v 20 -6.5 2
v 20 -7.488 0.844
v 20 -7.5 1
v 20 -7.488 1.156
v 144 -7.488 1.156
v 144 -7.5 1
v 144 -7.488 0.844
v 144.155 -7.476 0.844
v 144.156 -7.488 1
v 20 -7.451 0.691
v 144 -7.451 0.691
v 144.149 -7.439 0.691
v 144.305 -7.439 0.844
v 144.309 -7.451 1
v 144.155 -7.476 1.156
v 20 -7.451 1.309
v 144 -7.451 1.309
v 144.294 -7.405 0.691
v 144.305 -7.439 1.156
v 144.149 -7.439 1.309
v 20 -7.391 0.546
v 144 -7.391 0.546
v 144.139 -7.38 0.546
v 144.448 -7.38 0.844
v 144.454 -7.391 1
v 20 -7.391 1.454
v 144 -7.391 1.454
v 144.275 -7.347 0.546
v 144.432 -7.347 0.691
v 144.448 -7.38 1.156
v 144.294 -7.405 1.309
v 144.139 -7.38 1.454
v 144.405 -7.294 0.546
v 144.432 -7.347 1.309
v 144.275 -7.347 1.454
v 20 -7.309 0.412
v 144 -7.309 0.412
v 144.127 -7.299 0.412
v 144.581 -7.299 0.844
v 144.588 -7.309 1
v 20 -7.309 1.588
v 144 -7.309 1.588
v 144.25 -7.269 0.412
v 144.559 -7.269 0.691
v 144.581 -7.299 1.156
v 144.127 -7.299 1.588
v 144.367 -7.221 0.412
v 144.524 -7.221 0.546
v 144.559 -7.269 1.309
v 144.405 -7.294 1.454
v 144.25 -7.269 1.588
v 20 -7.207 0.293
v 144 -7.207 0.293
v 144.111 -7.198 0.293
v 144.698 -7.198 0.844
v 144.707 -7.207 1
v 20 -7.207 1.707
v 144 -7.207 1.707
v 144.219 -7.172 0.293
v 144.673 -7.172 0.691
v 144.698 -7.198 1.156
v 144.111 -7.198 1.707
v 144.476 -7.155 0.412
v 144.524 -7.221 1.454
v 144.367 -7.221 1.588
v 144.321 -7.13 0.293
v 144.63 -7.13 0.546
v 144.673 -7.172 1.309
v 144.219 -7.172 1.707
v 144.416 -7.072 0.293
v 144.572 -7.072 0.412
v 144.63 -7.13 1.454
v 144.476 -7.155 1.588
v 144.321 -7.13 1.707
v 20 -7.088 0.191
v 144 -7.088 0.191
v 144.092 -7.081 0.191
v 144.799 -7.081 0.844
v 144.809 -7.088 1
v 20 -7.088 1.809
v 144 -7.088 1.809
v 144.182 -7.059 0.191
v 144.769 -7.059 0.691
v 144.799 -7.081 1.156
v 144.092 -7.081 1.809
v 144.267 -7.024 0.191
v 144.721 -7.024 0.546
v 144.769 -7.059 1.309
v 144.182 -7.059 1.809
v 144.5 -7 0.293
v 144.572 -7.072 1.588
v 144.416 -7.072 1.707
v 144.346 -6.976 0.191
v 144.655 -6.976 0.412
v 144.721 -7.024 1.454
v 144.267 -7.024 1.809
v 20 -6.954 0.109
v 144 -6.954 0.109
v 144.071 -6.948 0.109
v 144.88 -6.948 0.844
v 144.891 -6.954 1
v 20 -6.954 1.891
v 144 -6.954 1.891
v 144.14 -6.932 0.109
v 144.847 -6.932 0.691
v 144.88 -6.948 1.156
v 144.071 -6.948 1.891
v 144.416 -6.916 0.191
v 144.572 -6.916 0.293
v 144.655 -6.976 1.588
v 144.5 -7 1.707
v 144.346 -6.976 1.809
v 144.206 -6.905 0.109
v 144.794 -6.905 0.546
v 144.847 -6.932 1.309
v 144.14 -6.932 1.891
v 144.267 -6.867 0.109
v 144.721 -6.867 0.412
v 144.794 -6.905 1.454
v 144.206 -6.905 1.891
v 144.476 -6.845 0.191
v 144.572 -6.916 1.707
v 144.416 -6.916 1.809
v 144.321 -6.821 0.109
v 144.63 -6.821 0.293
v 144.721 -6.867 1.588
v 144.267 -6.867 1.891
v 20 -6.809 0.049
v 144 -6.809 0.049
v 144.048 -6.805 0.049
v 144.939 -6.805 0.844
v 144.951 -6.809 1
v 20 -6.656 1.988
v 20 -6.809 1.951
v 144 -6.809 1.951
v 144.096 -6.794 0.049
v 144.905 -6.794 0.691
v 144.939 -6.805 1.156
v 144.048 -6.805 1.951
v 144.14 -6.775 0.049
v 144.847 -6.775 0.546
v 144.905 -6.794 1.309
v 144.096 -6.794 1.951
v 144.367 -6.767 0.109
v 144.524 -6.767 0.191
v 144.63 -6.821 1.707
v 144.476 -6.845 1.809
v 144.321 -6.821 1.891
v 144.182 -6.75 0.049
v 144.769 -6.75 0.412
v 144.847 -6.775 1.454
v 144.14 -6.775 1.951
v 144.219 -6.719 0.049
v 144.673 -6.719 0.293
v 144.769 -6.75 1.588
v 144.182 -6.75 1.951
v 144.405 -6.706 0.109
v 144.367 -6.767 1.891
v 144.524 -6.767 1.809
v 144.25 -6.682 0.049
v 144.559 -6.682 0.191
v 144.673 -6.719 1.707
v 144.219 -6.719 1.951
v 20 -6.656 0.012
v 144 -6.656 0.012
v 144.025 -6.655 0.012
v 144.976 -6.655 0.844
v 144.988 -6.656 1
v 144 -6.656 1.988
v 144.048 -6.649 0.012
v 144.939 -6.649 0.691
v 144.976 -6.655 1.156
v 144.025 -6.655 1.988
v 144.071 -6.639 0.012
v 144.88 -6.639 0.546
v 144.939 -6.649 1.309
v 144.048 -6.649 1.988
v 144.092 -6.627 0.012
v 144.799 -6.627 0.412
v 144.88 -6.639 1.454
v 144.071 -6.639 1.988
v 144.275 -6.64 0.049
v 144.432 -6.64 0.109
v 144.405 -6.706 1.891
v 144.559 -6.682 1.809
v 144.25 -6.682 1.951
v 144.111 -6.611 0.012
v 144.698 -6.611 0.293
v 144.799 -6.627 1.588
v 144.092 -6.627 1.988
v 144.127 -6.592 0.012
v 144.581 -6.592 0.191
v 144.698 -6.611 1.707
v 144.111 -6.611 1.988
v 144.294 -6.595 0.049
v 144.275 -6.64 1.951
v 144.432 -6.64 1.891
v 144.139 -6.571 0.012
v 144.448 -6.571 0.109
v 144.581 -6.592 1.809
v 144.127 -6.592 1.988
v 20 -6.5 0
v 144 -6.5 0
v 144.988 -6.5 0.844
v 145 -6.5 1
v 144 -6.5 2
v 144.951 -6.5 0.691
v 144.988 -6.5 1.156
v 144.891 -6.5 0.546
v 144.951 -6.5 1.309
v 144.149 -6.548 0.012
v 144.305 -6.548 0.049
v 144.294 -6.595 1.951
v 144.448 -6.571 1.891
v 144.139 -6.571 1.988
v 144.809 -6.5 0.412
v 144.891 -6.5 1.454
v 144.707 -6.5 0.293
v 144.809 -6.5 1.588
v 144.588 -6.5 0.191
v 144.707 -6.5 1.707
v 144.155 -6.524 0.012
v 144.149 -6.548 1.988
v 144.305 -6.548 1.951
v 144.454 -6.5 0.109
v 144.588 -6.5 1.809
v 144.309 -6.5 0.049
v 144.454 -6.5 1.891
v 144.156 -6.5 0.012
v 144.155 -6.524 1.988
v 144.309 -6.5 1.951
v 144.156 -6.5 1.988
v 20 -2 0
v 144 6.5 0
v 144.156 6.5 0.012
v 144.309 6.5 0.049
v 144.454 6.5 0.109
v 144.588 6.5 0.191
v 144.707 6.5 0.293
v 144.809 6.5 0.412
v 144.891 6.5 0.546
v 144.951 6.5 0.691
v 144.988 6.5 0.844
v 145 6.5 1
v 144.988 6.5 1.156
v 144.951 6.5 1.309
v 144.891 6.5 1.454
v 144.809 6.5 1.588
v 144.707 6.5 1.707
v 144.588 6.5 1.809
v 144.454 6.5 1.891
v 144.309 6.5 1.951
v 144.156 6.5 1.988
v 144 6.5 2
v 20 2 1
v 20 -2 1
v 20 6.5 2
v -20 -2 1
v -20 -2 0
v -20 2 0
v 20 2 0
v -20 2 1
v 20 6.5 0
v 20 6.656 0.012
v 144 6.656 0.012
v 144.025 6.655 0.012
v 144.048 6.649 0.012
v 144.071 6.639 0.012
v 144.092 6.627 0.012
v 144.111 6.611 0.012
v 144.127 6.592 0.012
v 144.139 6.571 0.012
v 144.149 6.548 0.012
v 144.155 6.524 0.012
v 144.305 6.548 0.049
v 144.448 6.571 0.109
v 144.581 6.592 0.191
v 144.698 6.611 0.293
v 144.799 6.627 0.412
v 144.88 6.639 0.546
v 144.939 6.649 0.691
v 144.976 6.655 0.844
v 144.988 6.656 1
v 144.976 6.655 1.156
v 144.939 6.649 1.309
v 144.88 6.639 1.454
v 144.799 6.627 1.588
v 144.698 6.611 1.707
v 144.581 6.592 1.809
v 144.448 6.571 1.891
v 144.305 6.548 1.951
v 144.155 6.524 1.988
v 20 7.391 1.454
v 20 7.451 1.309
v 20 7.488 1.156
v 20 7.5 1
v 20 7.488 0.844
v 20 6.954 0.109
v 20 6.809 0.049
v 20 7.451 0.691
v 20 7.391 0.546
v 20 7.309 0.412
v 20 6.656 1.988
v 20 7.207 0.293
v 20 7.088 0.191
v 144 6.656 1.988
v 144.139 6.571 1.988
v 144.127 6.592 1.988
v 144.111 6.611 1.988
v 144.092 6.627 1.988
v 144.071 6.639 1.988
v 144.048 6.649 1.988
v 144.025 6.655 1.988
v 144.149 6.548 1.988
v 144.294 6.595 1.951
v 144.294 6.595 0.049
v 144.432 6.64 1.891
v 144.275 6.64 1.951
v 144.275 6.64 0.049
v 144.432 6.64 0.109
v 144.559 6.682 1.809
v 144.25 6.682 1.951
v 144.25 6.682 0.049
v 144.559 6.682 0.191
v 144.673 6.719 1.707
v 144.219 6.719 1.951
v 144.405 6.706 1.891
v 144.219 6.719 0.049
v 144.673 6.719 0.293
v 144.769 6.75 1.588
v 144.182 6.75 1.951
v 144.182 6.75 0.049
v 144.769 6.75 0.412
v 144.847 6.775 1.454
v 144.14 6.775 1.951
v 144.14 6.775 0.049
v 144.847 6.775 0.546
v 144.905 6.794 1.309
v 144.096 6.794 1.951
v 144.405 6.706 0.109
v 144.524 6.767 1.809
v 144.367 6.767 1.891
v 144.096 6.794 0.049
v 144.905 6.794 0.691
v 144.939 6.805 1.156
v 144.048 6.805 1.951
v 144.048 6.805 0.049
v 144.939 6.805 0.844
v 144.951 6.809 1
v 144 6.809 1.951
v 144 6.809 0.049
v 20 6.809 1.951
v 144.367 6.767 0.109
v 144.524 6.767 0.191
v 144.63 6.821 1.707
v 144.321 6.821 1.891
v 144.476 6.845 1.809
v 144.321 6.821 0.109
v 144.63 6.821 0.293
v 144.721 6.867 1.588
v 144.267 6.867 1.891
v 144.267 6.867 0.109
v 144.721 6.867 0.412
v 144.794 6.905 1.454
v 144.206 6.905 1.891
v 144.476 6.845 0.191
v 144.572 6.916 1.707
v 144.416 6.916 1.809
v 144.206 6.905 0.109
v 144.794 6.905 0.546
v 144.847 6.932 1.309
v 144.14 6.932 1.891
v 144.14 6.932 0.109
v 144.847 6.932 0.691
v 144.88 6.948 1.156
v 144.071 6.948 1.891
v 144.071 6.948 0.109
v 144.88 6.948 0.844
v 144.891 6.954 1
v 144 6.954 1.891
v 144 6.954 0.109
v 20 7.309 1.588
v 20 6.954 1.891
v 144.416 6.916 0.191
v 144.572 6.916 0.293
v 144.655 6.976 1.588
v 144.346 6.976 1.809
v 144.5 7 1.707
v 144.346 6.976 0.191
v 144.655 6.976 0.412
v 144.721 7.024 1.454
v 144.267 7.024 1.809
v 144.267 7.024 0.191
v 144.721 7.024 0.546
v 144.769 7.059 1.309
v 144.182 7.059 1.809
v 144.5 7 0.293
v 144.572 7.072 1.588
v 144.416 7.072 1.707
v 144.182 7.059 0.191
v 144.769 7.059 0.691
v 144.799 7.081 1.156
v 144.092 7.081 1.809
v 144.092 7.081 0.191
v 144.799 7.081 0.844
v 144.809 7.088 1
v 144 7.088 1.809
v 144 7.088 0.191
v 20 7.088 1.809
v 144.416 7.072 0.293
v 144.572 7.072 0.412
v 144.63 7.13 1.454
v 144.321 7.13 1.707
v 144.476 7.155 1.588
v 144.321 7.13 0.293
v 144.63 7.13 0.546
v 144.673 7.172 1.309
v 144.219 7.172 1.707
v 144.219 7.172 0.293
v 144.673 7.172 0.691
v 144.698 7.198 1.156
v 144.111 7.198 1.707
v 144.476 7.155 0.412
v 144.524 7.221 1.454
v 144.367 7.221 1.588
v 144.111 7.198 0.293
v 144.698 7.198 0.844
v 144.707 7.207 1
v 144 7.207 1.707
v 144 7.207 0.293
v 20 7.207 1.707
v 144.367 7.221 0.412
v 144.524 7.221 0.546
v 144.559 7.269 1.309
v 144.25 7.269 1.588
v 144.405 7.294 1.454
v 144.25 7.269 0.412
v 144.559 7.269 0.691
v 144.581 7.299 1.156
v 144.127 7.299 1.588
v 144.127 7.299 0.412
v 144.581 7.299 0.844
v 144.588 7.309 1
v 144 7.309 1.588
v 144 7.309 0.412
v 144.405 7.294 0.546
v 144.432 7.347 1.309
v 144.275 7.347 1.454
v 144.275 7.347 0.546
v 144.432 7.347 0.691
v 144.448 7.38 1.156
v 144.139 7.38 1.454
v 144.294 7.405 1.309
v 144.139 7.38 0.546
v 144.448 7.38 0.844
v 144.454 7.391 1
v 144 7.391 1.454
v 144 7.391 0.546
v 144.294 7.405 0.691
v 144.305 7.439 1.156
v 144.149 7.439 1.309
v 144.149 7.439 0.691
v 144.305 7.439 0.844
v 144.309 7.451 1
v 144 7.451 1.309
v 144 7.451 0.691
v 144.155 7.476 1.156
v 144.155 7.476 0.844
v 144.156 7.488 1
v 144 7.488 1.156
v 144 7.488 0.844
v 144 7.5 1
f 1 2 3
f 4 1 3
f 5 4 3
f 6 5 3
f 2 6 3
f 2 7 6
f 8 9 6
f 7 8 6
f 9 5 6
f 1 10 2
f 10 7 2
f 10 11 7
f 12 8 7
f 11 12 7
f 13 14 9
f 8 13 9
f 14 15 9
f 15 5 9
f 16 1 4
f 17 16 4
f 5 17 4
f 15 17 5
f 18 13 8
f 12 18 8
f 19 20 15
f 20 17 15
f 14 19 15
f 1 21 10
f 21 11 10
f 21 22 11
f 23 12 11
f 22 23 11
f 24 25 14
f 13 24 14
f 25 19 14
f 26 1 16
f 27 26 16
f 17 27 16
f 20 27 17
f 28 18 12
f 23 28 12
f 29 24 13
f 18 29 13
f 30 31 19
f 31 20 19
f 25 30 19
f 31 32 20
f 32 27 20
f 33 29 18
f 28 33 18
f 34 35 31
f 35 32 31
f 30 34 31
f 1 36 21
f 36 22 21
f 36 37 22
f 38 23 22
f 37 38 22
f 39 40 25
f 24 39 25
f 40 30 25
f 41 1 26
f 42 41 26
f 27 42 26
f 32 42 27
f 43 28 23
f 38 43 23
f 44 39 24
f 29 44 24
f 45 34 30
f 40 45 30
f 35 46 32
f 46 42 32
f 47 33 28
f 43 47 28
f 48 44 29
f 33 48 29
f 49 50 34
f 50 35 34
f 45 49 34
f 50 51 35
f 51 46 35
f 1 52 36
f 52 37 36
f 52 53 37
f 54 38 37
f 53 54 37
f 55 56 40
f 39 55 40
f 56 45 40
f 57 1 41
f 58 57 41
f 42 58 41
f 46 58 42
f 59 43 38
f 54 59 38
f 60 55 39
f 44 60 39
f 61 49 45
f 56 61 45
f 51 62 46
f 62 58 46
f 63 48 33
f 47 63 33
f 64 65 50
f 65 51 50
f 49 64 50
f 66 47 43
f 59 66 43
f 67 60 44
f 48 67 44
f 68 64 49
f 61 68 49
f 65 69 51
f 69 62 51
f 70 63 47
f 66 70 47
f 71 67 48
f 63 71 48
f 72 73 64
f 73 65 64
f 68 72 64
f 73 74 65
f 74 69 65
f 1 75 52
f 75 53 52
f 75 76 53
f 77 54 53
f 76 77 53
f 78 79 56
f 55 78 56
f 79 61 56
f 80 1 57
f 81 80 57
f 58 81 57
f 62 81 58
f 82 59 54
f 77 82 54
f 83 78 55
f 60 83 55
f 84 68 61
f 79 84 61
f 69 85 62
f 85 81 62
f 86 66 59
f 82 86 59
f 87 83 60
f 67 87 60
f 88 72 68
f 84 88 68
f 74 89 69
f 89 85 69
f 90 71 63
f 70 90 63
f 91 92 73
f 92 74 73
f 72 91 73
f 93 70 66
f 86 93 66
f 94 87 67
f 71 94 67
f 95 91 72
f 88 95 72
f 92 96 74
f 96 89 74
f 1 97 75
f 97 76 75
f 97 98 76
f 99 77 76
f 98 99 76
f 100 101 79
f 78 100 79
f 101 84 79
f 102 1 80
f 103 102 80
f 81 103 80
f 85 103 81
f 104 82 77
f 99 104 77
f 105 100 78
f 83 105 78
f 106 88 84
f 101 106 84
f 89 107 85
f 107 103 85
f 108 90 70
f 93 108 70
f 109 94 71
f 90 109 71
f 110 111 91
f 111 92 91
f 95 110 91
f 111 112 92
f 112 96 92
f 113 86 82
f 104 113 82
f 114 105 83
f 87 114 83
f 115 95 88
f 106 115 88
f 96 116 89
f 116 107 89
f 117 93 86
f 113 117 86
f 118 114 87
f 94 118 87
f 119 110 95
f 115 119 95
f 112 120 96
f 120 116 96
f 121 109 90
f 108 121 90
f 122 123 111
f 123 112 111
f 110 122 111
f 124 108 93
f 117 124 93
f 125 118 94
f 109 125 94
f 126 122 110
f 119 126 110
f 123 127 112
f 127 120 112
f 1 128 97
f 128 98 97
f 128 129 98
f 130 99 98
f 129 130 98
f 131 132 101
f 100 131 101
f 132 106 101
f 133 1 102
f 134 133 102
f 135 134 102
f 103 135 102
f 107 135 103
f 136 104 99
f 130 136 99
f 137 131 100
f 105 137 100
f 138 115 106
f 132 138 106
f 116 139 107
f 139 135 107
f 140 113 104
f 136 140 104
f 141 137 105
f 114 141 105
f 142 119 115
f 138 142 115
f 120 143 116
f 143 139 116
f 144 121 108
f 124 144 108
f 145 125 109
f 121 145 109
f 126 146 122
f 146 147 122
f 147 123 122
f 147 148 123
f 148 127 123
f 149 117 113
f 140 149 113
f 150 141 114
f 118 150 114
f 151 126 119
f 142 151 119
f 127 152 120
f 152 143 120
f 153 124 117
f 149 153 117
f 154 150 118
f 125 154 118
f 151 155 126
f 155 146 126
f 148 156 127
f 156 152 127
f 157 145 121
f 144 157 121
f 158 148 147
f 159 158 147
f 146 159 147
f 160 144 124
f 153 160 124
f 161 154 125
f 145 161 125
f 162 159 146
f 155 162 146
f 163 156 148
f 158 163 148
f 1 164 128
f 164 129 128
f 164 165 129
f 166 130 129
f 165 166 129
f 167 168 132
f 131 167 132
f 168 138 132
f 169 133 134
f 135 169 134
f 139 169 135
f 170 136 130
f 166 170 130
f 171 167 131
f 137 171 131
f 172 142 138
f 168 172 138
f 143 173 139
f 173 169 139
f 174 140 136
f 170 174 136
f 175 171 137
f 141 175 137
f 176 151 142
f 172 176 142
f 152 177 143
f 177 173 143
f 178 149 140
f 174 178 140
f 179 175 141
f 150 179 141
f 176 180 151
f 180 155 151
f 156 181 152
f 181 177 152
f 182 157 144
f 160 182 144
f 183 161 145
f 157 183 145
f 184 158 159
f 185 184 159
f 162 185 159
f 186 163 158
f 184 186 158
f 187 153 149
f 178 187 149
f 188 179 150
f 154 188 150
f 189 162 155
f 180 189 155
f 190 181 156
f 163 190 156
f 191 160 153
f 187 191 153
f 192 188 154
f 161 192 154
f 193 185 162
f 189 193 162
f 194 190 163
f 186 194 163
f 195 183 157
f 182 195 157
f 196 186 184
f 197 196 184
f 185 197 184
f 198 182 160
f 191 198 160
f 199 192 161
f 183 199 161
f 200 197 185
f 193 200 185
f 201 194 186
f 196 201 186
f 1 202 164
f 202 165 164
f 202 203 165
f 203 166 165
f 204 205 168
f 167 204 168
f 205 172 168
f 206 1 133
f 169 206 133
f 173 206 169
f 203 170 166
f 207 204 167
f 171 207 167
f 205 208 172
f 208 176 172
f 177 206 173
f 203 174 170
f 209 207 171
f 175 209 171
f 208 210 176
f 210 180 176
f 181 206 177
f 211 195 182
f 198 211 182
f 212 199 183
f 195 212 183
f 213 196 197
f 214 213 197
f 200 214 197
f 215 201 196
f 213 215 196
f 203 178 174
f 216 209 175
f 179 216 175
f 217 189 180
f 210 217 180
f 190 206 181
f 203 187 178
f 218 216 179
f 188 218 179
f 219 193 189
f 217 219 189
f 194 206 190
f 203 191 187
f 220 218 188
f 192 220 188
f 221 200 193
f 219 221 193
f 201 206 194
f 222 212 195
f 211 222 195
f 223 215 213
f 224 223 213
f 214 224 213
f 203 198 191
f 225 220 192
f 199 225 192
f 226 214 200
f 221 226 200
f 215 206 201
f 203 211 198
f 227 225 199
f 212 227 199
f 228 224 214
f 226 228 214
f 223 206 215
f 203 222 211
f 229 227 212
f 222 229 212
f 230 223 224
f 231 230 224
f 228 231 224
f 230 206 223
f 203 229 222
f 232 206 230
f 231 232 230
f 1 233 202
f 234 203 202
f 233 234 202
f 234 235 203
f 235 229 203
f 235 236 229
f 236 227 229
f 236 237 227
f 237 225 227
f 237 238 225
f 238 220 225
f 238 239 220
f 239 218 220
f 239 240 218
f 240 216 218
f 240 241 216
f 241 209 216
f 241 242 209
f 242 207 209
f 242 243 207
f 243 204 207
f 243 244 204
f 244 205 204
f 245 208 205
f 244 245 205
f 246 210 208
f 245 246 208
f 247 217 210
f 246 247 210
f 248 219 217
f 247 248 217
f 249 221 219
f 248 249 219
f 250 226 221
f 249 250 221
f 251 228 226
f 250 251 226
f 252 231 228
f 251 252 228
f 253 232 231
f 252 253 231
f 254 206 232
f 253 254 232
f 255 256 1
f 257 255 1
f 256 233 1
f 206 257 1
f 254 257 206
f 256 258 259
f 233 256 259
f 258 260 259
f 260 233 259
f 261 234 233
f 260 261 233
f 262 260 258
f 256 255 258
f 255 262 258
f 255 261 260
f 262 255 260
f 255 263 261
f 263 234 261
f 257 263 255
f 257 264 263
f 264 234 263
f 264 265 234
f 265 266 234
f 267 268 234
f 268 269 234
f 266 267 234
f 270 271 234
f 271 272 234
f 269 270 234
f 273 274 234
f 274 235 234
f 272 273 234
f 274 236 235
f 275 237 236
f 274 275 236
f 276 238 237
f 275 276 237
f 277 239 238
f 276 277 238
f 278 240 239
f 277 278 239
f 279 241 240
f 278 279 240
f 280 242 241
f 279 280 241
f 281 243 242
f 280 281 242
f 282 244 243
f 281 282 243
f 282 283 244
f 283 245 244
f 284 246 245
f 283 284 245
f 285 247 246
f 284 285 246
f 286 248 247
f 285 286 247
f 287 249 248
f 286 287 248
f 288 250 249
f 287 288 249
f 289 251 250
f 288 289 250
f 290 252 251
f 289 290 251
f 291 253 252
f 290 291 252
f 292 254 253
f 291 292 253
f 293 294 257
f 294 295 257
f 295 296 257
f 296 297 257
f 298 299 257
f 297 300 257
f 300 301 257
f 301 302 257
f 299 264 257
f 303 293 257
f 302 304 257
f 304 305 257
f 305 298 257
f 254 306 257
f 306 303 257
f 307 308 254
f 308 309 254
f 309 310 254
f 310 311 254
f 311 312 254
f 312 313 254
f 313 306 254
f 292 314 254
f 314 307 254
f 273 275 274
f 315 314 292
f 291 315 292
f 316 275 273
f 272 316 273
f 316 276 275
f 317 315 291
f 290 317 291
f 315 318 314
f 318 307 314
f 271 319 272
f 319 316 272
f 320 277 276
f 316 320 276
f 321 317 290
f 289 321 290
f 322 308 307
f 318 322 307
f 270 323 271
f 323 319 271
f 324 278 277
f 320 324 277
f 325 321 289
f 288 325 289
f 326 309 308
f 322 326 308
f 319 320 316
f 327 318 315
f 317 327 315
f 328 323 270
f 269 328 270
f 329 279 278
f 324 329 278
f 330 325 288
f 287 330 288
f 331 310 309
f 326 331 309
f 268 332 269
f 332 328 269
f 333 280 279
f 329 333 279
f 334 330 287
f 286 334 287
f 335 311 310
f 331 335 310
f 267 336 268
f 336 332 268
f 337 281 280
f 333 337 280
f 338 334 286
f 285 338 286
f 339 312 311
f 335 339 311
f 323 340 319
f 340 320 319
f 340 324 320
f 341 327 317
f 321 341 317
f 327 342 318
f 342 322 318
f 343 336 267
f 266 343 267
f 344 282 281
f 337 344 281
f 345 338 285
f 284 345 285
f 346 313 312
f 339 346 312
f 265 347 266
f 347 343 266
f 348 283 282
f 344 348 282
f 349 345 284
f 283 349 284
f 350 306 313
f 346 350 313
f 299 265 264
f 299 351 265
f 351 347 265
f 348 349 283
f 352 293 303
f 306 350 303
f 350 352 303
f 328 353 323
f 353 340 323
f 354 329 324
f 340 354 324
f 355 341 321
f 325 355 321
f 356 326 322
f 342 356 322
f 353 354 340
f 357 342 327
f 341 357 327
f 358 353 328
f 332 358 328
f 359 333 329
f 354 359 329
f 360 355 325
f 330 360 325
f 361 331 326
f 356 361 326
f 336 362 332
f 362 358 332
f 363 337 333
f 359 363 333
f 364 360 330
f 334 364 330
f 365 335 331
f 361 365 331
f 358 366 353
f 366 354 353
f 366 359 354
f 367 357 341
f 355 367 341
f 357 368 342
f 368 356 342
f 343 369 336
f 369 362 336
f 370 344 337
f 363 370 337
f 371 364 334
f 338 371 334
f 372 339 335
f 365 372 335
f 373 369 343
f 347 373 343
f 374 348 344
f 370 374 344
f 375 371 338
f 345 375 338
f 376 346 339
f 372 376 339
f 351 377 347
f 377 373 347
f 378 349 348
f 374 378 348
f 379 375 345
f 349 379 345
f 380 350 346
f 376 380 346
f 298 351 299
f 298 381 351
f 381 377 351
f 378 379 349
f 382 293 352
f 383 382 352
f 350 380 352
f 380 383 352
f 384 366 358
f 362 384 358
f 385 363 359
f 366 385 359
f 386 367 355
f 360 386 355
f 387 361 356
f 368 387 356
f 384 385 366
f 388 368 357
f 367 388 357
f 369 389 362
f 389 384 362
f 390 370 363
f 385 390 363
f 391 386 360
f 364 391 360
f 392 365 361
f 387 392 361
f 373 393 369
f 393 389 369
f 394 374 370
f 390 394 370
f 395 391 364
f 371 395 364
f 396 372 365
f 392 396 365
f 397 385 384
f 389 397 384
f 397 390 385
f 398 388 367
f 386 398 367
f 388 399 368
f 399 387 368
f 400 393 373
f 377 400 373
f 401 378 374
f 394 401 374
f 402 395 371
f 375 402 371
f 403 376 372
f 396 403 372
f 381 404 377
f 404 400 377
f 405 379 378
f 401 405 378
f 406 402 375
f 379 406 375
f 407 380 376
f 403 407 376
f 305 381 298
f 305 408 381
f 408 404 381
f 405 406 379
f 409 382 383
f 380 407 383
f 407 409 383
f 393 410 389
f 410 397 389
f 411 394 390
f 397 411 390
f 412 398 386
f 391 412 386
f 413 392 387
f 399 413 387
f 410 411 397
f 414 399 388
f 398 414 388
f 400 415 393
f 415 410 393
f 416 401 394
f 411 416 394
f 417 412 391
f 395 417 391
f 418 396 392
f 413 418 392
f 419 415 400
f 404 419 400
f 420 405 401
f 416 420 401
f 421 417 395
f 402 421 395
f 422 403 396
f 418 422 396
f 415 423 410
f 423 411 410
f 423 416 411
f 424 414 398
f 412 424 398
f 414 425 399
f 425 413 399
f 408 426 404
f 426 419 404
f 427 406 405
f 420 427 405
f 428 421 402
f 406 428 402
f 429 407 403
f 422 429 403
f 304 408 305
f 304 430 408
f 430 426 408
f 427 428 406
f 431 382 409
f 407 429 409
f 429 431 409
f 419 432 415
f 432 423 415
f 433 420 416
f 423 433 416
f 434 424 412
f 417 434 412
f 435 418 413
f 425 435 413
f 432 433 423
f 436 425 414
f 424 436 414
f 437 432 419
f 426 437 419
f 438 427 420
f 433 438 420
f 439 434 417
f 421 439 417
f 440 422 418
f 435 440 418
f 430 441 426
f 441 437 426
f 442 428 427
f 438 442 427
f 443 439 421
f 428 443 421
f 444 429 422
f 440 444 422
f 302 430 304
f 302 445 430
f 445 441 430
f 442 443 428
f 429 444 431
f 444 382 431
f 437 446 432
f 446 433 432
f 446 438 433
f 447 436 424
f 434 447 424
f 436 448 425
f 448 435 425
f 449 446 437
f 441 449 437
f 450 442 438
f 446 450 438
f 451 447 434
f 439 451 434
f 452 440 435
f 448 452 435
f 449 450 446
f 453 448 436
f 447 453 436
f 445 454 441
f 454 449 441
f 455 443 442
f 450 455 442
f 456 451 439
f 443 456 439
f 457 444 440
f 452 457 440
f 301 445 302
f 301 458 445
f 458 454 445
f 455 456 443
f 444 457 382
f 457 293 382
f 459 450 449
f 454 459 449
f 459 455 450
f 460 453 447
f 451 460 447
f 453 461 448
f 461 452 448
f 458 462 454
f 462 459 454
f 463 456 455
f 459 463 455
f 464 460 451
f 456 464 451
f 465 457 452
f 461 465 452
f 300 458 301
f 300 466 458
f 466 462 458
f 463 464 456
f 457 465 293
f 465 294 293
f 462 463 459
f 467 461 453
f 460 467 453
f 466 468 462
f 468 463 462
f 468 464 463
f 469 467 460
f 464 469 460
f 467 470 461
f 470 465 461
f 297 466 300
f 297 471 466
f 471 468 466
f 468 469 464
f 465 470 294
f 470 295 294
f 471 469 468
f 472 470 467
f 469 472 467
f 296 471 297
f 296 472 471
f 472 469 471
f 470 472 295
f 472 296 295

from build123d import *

# Parameters (mm, degrees)
ESQUISSE1_W             = 40
ESQUISSE1_H             = 4
BOSS_EXTRU_2_DEPTH      = 2
ESQUISSE2_W             = 1
ESQUISSE2_H             = 4
ENL_V_MAT_EXTRU_1_DEPTH = 40
CONG_1_R                = 1
CONG_2_R                = 1


with BuildPart() as part:
    # Esquisse1 → Boss.-Extru.2 (new body)
    with BuildSketch(Plane.XY):
        Rectangle(ESQUISSE1_W, ESQUISSE1_H)
        Polygon((145, 7.5), (145, -7.5), (20, -7.5), (20, -2), (20, 2), (20, 7.5), align=None)
    extrude(amount=BOSS_EXTRU_2_DEPTH)

    # Esquisse2 → Enlèv. mat.-Extru.1 (cut)
    with BuildSketch(Plane.ZY.offset(20)):
        with Locations((1.5, 0)):
            Rectangle(ESQUISSE2_W, ESQUISSE2_H)
    extrude(amount=-ENL_V_MAT_EXTRU_1_DEPTH, mode=Mode.SUBTRACT)

    # Congé1
    cong_1_edges = [part.edges().sort_by_distance(p)[0] for p in [
        (82.5, -7.5, 0),
        (82.5, -7.5, 2),
        (82.5, 7.5, 2),
        (82.5, 7.5, 0),
    ]]
    fillet(cong_1_edges, radius=CONG_1_R - 0.0001)  # a hair under: the kernel refuses the full size

    # Congé2
    cong_2_edges = [part.edges().sort_by_distance(p)[0] for p in [
        (145, 0, 0),
        (145, 0, 2),
        (145, 7.207136071, 0.292863929),
        (145, 7.207136071, 1.707136071),
        (145, -7.207136071, 1.707136071),
        (145, -7.207136071, 0.292863929),
    ]]
    fillet(cong_2_edges, radius=CONG_2_R - 0.0001)  # a hair under: the kernel refuses the full size


solid = part.part
